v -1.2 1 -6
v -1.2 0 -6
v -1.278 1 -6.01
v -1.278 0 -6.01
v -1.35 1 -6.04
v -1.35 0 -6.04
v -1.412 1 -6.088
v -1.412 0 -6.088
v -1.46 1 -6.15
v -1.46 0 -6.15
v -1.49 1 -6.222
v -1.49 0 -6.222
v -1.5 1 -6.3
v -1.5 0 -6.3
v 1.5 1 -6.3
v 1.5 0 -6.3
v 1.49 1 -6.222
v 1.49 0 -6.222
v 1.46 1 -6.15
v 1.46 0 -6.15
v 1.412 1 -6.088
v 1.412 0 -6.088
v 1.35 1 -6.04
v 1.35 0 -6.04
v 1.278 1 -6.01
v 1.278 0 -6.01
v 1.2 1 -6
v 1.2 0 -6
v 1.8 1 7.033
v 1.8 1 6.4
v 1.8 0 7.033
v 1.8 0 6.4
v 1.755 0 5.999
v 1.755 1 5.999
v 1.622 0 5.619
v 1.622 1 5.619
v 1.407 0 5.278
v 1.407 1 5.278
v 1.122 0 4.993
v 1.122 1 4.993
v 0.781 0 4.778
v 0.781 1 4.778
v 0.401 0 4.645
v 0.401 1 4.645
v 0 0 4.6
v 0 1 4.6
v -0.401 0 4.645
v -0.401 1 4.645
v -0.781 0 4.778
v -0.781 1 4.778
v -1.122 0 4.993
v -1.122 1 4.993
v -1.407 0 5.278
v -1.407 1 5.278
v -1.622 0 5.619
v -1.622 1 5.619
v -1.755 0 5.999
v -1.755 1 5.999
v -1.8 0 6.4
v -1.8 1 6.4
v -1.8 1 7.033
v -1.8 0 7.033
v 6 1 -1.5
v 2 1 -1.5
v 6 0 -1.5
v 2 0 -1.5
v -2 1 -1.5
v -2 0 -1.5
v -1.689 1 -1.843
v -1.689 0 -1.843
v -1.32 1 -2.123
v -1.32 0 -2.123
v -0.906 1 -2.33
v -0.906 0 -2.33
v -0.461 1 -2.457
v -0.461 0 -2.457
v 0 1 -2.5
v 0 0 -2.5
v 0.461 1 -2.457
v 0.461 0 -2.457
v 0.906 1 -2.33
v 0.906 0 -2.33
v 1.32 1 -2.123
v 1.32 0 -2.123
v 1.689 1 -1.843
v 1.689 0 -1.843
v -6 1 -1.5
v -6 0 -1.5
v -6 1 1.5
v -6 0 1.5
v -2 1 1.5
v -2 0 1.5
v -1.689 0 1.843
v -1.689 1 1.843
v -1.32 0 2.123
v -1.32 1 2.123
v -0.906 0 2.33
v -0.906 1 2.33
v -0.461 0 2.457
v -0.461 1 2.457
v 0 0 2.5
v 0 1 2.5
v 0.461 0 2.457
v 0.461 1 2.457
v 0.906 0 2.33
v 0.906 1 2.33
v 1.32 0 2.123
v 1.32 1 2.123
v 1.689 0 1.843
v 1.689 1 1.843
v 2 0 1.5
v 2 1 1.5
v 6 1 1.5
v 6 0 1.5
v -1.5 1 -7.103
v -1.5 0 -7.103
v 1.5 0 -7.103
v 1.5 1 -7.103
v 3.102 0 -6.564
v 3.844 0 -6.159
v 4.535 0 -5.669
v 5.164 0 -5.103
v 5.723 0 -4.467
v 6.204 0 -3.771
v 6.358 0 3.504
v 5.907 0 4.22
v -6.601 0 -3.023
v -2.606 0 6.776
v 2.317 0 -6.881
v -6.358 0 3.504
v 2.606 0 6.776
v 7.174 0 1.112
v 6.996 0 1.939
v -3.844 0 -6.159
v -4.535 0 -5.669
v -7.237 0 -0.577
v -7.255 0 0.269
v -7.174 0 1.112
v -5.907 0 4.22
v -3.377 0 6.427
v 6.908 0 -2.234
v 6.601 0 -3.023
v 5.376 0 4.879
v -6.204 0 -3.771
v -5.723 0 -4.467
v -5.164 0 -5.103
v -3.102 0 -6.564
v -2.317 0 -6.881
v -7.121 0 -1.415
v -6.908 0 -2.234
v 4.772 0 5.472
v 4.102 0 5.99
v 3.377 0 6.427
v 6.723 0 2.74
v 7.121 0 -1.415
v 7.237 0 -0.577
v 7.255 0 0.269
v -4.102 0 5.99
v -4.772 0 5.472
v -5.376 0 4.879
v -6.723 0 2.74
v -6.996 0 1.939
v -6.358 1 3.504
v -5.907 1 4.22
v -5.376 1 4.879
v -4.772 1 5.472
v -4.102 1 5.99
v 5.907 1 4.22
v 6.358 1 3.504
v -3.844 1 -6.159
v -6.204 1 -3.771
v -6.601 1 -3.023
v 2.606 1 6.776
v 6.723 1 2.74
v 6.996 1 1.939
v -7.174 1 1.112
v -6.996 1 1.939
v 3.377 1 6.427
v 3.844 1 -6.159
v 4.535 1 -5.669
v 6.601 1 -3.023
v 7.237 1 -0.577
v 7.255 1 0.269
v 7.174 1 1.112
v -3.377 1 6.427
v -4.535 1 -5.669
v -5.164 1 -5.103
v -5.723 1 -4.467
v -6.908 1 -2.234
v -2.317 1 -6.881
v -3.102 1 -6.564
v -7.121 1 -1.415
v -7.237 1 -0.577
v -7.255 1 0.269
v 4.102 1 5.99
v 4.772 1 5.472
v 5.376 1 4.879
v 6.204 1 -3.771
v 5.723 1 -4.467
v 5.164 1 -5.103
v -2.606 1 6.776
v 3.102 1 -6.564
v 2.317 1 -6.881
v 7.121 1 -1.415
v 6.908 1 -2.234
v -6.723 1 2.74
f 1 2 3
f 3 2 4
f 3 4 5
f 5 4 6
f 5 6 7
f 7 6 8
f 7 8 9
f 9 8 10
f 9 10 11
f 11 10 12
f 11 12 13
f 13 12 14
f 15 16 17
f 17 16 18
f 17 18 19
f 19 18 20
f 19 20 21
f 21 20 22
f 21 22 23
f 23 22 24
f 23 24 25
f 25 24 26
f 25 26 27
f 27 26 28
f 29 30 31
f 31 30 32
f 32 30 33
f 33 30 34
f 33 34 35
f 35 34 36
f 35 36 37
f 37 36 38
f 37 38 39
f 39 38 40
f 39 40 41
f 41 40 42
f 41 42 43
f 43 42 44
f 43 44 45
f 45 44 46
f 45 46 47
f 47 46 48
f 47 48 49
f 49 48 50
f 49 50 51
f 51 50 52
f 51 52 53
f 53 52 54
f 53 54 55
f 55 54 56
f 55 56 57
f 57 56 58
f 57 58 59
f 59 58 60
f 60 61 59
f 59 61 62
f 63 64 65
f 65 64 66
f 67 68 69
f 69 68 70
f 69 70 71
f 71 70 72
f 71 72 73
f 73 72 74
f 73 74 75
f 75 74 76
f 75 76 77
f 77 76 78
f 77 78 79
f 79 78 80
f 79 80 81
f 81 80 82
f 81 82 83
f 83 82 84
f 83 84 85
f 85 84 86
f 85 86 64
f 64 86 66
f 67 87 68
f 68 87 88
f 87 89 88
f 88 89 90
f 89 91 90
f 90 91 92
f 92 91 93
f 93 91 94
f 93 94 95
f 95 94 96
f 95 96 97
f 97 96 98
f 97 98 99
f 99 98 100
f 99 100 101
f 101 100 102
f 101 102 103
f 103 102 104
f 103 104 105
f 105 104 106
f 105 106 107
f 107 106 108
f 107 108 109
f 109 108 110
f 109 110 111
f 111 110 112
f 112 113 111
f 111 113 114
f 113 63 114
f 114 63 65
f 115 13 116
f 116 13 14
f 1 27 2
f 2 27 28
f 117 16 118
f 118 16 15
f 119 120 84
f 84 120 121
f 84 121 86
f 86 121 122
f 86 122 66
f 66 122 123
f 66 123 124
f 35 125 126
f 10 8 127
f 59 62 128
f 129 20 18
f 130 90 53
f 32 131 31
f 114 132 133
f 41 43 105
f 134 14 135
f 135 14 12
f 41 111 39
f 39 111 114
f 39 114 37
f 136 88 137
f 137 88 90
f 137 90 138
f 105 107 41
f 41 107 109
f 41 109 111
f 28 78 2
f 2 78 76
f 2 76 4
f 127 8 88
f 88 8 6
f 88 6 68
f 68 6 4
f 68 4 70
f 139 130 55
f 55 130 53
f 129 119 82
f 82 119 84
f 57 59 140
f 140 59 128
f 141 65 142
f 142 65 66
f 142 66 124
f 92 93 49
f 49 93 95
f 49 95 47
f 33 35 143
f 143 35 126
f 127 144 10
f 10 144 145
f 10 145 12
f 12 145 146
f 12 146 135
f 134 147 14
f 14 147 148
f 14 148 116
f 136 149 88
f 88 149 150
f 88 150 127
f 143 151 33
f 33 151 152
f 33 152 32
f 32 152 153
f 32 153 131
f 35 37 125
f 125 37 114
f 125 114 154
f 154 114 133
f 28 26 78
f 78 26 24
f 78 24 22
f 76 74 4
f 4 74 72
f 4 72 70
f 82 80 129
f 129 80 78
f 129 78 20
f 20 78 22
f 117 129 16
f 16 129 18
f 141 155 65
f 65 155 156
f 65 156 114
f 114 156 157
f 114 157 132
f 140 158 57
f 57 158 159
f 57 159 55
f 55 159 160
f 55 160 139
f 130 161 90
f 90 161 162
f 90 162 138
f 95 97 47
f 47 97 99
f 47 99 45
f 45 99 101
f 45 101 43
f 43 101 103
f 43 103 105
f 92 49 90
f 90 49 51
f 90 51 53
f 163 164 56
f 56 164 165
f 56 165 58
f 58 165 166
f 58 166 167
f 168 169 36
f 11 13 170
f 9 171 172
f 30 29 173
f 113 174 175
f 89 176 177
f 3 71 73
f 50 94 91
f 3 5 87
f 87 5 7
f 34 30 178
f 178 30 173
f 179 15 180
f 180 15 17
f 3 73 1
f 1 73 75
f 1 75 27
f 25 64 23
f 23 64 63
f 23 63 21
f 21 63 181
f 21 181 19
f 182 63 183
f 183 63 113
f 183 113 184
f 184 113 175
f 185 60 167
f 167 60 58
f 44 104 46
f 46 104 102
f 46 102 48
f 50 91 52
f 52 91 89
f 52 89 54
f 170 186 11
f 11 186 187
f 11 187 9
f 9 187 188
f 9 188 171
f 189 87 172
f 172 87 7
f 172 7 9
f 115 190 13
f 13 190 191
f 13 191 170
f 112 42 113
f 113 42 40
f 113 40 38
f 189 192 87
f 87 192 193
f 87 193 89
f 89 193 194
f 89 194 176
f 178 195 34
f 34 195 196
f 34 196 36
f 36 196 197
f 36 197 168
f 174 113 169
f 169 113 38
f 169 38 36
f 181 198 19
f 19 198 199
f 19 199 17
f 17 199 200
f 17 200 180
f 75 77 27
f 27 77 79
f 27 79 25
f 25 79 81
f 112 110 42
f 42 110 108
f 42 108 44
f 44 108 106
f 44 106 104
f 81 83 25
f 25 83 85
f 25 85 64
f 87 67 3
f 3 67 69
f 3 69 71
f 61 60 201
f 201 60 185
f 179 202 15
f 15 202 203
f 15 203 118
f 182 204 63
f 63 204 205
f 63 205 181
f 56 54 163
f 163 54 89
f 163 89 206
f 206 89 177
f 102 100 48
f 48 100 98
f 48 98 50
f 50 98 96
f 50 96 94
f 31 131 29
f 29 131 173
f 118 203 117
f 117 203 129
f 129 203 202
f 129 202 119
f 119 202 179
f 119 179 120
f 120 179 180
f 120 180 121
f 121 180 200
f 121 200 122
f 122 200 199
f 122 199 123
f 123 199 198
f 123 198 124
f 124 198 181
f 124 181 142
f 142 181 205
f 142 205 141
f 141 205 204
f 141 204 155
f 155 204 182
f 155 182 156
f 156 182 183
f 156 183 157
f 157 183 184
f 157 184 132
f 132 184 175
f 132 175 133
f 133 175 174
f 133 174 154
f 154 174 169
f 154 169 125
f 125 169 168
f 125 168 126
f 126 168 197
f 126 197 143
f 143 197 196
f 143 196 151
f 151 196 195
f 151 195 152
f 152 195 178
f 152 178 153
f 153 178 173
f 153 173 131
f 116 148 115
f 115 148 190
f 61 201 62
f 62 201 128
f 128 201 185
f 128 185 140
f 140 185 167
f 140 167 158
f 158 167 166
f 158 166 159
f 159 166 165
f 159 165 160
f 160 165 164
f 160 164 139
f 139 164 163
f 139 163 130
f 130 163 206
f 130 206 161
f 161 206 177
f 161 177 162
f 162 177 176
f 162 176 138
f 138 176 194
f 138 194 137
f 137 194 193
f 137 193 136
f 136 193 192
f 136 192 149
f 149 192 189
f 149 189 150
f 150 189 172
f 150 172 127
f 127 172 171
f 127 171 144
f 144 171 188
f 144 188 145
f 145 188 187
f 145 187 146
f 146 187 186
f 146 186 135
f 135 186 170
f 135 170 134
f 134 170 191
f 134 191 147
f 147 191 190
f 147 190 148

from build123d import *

# Parameters (mm, degrees)
SKETCH1_R           = 7.26
BOSS_EXTRUDE1_DEPTH = 1
CUT_EXTRUDE1_DEPTH  = 2
CUT_EXTRUDE2_DEPTH  = 2
CUT_EXTRUDE3_DEPTH  = 2
FILLET1_R           = 0.3


with BuildPart() as part:
    # Sketch1 → Boss-Extrude1 (new body)
    with BuildSketch(Plane(origin=(0, 0, 0), x_dir=(1, 0, 0), z_dir=(0, 1, 0))):
        Circle(SKETCH1_R)
    extrude(amount=BOSS_EXTRUDE1_DEPTH)

    # Sketch2 → Cut-Extrude1 (cut, through all)
    with BuildSketch(Plane(origin=(0, 1, 0), x_dir=(1, 0, 0), z_dir=(0, 1, 0))):
        with BuildLine():
            Line((-1.5, 7.103351322), (-1.5, 6))
            Line((-1.5, 6), (1.5, 6))
            Line((1.5, 6), (1.5, 7.103351322))
            ThreePointArc((1.5, 7.103351322), (0, 7.26), (-1.5, 7.103351322))
        make_face()
    extrude(amount=-CUT_EXTRUDE1_DEPTH, mode=Mode.SUBTRACT)

    # Sketch3 → Cut-Extrude2 (cut, through all)
    with BuildSketch(Plane(origin=(0, 1, 0), x_dir=(1, 0, 0), z_dir=(0, 1, 0))):
        with BuildLine():
            Line((2, 1.5), (6, 1.5))
            Line((6, 1.5), (6, -1.5))
            Line((6, -1.5), (2, -1.5))
            ThreePointArc((2, -1.5), (0, -2.5), (-2, -1.5))
            Line((-2, -1.5), (-6, -1.5))
            Line((-6, -1.5), (-6, 1.5))
            Line((-6, 1.5), (-2, 1.5))
            ThreePointArc((-2, 1.5), (0, 2.5), (2, 1.5))
        make_face()
    extrude(amount=-CUT_EXTRUDE2_DEPTH, mode=Mode.SUBTRACT)

    # Sketch4 → Cut-Extrude3 (cut, through all)
    with BuildSketch(Plane(origin=(0, 1, 0), x_dir=(1, 0, 0), z_dir=(0, 1, 0))):
        with BuildLine():
            Line((-1.8, -6.4), (-1.8, -7.033320695))
            ThreePointArc((-1.8, -7.033320695), (0, -7.26), (1.8, -7.033320695))
            Line((1.8, -7.033320695), (1.8, -6.4))
            ThreePointArc((1.8, -6.4), (0, -4.6), (-1.8, -6.4))
        make_face()
    extrude(amount=-CUT_EXTRUDE3_DEPTH, mode=Mode.SUBTRACT)

    # Fillet1
    fillet1_edges = [part.edges().sort_by_distance(p)[0] for p in [
        (1.5, 0.5, -6),
        (-1.5, 0.5, -6),
    ]]
    fillet(fillet1_edges, radius=FILLET1_R)


solid = part.part
